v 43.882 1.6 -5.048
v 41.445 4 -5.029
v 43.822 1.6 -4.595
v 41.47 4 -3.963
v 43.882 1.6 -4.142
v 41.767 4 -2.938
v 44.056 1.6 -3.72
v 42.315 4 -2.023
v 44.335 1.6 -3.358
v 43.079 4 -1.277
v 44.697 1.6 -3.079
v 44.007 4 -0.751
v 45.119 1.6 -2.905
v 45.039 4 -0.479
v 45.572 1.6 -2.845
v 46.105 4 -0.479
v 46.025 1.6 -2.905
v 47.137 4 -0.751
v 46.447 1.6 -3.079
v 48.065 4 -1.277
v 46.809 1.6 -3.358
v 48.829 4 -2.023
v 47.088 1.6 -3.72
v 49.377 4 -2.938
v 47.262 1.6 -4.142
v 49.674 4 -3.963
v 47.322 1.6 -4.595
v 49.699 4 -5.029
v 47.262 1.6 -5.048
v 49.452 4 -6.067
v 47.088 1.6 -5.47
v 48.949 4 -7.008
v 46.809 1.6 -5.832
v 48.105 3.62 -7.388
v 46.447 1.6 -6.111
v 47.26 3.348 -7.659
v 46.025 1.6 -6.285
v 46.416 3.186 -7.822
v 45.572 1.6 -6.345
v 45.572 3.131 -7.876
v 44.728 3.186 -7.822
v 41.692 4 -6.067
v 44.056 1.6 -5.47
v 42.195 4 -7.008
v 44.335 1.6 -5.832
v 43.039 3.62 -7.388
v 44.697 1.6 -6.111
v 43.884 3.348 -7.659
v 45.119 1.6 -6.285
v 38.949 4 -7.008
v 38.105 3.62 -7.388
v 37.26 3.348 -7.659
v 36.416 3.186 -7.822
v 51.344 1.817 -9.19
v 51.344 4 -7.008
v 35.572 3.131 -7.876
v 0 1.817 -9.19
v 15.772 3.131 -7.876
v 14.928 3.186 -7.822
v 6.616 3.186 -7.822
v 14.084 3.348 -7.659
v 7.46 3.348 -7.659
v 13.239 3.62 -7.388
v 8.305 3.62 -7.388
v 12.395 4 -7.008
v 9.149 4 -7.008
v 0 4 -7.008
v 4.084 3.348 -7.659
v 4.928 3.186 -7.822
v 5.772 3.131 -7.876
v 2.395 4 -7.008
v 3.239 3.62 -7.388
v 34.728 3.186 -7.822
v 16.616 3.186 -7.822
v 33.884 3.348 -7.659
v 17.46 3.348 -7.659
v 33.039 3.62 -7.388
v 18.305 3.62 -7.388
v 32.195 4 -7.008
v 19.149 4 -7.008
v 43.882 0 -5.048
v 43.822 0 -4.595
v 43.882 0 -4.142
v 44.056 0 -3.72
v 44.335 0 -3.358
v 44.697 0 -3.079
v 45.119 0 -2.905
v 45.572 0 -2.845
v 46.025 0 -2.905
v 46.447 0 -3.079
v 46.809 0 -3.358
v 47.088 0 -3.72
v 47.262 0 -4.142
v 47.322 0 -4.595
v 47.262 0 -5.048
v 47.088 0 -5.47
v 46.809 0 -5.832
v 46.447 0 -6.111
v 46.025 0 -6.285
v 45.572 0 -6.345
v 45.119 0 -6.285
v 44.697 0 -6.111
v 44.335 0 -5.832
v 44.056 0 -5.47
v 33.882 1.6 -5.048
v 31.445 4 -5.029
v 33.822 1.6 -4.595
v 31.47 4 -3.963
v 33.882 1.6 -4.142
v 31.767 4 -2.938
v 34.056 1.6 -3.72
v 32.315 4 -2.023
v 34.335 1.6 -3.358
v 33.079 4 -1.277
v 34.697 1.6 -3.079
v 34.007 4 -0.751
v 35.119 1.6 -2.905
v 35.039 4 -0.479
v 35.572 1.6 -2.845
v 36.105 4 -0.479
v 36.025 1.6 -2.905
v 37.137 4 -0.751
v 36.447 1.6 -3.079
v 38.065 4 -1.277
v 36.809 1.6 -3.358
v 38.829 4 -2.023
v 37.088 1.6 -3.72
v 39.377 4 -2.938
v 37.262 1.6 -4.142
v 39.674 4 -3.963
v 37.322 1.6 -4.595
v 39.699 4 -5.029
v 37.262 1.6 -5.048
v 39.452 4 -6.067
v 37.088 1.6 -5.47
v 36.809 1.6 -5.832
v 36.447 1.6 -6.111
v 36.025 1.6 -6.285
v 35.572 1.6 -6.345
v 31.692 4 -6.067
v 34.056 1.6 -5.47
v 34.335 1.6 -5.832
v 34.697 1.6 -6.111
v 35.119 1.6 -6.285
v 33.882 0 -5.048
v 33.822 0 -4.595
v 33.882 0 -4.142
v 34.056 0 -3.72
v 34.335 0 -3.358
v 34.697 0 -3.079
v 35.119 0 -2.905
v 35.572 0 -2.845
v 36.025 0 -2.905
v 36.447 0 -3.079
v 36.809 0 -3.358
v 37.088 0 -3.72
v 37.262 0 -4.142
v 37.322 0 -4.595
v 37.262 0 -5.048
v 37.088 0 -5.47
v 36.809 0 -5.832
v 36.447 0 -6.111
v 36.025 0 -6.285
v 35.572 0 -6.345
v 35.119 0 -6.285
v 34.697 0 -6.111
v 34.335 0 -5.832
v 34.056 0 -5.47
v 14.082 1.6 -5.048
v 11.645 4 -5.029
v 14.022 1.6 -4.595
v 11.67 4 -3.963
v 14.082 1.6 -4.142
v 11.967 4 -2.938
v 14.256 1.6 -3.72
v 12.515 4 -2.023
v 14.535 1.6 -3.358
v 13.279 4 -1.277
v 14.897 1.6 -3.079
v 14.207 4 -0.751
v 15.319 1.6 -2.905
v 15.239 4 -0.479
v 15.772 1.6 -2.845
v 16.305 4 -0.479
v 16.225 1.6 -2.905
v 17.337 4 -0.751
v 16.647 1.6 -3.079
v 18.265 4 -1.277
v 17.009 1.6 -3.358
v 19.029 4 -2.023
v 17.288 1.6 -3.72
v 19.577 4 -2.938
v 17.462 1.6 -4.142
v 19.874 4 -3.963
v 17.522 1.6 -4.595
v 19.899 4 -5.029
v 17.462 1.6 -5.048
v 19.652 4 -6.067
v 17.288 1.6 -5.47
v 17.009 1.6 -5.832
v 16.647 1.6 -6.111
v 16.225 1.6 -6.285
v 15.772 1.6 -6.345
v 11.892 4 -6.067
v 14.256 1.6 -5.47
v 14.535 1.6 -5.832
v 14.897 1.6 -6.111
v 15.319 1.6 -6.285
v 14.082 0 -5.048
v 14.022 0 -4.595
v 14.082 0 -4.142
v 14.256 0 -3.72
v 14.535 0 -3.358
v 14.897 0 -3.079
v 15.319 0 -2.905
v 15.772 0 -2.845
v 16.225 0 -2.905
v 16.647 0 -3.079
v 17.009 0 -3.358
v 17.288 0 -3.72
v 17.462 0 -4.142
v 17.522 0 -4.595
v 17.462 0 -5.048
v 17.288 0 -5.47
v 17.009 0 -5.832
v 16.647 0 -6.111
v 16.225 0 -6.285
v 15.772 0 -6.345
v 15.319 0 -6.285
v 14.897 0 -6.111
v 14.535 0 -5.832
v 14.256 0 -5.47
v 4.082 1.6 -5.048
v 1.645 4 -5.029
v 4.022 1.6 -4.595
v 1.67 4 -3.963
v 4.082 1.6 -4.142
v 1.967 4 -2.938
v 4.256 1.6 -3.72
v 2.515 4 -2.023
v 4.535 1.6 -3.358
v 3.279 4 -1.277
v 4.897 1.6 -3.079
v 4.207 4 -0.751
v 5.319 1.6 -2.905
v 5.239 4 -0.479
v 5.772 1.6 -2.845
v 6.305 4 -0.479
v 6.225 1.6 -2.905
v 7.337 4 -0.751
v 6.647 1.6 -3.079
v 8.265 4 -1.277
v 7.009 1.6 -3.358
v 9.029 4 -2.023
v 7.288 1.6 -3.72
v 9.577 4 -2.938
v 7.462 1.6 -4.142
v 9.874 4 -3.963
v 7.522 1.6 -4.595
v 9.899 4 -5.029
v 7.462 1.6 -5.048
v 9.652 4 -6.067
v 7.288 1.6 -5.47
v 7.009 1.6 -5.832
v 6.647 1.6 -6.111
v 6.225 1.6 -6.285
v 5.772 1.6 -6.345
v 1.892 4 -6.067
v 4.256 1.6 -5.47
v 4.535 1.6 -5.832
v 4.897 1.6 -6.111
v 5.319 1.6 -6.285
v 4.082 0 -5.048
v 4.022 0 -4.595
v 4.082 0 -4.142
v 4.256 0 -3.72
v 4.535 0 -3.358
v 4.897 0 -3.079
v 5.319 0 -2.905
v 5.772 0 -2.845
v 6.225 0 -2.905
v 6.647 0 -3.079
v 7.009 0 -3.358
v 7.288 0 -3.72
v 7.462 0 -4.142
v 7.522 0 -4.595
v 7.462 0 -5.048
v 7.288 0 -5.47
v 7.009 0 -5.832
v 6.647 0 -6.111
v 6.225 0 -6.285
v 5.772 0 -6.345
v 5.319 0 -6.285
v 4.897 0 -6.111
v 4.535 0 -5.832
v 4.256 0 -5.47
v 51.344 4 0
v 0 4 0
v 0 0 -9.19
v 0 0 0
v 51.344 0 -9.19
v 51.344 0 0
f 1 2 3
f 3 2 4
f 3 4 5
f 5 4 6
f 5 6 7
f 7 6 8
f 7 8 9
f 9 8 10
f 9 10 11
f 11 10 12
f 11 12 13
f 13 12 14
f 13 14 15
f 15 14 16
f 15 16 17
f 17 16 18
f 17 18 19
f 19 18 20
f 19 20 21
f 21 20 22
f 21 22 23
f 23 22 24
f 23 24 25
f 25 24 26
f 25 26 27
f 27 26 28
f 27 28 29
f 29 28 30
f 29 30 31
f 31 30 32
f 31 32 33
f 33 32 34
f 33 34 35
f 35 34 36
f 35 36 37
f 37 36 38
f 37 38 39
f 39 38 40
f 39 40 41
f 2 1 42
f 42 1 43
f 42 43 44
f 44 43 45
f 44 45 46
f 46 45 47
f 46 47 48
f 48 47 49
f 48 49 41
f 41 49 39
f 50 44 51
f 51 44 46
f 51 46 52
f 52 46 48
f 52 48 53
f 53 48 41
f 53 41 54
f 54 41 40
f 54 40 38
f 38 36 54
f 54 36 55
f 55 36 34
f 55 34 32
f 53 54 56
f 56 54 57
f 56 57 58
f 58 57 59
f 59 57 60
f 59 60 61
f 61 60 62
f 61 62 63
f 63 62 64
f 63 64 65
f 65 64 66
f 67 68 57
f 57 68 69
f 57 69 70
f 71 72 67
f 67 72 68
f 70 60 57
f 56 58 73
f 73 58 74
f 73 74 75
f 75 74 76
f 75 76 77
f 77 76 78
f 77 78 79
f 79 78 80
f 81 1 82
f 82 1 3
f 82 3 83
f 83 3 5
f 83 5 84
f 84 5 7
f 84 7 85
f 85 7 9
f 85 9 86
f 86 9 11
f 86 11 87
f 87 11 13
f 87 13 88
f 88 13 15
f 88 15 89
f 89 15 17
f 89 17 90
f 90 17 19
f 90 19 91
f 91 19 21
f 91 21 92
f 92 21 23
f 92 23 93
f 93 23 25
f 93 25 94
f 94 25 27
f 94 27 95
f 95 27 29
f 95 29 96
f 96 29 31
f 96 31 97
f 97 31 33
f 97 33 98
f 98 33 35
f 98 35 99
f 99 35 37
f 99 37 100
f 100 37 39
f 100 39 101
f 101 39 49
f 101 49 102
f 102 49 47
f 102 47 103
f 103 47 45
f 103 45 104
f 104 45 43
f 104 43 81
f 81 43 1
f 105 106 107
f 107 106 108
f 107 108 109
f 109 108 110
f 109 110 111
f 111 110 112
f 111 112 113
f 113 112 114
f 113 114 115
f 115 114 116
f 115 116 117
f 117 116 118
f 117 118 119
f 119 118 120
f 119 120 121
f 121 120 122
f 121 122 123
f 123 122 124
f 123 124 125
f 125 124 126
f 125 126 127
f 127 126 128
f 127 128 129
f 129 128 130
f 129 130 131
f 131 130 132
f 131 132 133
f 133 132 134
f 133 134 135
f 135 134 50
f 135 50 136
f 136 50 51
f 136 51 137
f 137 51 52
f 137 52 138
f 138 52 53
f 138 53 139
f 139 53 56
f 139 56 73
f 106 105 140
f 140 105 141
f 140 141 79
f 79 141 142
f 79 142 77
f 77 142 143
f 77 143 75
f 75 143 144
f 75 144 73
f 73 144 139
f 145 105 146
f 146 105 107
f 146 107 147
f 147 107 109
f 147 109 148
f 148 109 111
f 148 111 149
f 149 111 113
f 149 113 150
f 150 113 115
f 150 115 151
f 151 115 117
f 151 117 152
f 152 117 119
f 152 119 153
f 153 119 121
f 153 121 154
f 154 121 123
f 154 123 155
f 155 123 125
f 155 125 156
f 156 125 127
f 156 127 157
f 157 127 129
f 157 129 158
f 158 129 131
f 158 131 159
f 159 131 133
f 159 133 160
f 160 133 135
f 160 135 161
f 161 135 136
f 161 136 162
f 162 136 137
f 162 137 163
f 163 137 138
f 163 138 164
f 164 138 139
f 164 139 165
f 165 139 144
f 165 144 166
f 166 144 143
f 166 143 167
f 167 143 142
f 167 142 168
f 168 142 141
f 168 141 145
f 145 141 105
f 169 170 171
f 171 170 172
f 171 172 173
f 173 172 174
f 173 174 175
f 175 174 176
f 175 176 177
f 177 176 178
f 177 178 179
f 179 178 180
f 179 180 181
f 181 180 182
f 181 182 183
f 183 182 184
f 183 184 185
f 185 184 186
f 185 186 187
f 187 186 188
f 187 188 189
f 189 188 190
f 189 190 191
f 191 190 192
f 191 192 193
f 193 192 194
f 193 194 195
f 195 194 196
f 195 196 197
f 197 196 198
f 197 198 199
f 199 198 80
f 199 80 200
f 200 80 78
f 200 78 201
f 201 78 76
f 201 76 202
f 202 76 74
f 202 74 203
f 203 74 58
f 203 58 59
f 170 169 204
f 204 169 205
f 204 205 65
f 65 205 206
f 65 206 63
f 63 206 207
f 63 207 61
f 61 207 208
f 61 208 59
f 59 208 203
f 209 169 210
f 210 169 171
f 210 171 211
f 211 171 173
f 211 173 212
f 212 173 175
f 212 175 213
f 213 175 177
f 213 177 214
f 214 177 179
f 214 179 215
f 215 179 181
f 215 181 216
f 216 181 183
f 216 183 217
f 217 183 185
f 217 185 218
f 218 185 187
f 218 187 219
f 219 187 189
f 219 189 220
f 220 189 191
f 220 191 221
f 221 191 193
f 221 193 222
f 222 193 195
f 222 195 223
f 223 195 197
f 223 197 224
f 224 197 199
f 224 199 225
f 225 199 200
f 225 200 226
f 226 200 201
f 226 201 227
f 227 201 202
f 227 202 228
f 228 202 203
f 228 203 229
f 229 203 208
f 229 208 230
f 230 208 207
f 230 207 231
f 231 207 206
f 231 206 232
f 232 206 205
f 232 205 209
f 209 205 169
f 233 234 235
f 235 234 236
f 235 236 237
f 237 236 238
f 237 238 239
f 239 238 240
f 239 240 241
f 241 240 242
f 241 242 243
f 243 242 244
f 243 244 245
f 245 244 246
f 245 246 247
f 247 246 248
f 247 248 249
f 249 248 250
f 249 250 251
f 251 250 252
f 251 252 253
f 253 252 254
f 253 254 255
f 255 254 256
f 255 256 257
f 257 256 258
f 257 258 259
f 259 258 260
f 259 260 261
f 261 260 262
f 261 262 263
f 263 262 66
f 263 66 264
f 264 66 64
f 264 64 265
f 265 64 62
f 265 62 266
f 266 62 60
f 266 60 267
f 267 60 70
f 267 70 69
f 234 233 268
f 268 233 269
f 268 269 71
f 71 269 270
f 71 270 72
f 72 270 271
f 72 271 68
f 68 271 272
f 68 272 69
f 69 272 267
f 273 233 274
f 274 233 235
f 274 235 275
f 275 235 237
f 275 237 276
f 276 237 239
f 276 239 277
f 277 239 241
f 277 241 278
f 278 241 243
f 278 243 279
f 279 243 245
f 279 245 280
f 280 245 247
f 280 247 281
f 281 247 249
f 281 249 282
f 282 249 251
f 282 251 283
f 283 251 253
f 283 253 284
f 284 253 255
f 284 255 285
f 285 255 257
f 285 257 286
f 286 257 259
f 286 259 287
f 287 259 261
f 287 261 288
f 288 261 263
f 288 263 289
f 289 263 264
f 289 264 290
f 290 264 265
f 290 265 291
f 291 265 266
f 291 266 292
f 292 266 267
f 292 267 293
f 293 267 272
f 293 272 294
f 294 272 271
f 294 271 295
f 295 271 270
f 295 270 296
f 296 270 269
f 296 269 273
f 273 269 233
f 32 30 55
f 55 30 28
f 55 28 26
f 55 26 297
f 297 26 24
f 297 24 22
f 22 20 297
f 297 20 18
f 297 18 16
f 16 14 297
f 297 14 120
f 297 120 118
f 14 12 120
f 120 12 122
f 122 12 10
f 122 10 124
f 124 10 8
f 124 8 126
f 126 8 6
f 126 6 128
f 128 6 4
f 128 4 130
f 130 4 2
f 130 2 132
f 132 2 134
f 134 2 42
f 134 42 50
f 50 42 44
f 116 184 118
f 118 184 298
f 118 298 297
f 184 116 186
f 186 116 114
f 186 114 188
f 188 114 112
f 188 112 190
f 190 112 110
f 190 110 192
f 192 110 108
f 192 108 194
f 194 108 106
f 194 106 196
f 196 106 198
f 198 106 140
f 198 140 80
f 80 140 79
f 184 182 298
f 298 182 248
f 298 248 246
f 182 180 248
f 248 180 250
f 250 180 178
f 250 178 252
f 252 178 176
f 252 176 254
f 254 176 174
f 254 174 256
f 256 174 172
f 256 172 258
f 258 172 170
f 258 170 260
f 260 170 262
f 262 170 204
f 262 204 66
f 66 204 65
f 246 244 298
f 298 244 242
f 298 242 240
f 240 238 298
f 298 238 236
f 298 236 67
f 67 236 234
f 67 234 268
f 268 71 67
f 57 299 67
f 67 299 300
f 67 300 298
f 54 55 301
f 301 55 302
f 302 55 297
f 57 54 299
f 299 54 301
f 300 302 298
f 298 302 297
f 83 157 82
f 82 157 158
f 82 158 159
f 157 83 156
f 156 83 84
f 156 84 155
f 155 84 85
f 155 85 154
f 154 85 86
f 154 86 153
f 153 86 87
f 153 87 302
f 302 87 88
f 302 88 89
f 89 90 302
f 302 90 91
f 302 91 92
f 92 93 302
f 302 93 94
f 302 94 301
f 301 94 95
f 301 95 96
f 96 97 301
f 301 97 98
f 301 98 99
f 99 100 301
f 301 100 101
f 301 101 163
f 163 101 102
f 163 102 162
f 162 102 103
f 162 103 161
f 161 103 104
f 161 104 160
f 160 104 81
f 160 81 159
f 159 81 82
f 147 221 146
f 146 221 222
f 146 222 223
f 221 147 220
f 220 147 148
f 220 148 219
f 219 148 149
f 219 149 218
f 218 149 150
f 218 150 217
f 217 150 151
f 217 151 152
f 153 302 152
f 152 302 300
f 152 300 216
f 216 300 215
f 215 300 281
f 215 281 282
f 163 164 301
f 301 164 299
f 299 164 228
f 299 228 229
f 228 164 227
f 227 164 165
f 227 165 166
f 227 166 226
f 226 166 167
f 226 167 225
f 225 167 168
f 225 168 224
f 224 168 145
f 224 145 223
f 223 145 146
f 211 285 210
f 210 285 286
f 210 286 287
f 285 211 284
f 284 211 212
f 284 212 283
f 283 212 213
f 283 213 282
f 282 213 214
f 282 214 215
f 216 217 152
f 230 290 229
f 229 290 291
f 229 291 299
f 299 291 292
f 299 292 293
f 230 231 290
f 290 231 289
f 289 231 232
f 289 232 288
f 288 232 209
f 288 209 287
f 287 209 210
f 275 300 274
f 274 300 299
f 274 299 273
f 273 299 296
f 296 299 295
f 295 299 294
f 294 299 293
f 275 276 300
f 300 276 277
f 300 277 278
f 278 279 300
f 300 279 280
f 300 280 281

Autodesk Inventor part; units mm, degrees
ref_plane "YZ Plane" through (0, 0, 0) normal (1, 0, 0) x (0, 1, 0)
ref_plane "XZ Plane" through (0, 0, 0) normal (0, 1, 0) x (-1, 0, 0)
ref_plane "XY Plane" through (0, 0, 0) normal (0, 0, 1) x (1, 0, 0)
sketch "Sketch1" plane through (0, 0, 0) normal (0, 1, 0) x (-1, 0, 0)
  line L0 (0, 0) -> (-20.772, 0)
  line L1 (-20.772, 0) -> (-20.772, -9.19)
  line L2 (-20.772, -9.19) -> (0, -9.19)
  line L3 (0, -9.19) -> (0, 0)
  line L4 (-20.772, -9.19) -> (-30.572, -9.19)
  line L5 (-30.572, -9.19) -> (-30.572, 0)
  line L6 (-30.572, 0) -> (-20.772, 0)
  line L7 (-20.772, 0) -> (-20.772, -9.19)
  line L8 (-30.572, -9.19) -> (-51.344, -9.19)
  line L9 (-51.344, -9.19) -> (-51.344, 0)
  line L10 (-51.344, 0) -> (-30.572, 0)
  line L11 (-30.572, 0) -> (-30.572, -9.19)
  circle A0 centre (-5.772, -4.595) radius 1.75
  circle A1 centre (-15.772, -4.595) radius 1.75
  circle A2 centre (-35.572, -4.595) radius 1.75
  circle A3 centre (-45.572, -4.595) radius 1.75
  dimension "d0" = 20.772
  dimension "d1" = 9.19
  dimension "d2" = 9.8
  dimension "d3" = 9.19
  dimension "d4" = 20.772
  dimension "d5" = 9.19
  dimension "d6" = 3.5
  dimension "d7" = 3.5
  dimension "d8" = 3.5
  dimension "d9" = 3.5
  dimension "d10" = 5.772
  dimension "d11" = 10
  dimension "d12" = 5.772
  dimension "d13" = 10
extrude "Extrusion1" add sketch "Sketch1" along normal blind 4
chamfer "Chamfer1" distance 2.1825 angle 45 1 edges at (25.672, 4, -9.19)
chamfer "Chamfer2" distance 2.4 angle 45 4 edges at (7.522, 4, -4.595) (17.522, 4, -4.595) (37.322, 4, -4.595) (47.322, 4, -4.595)
equation "\"d12\" = d10"
equation "\"d13\" = d11"
properties part number "topSpacer"
